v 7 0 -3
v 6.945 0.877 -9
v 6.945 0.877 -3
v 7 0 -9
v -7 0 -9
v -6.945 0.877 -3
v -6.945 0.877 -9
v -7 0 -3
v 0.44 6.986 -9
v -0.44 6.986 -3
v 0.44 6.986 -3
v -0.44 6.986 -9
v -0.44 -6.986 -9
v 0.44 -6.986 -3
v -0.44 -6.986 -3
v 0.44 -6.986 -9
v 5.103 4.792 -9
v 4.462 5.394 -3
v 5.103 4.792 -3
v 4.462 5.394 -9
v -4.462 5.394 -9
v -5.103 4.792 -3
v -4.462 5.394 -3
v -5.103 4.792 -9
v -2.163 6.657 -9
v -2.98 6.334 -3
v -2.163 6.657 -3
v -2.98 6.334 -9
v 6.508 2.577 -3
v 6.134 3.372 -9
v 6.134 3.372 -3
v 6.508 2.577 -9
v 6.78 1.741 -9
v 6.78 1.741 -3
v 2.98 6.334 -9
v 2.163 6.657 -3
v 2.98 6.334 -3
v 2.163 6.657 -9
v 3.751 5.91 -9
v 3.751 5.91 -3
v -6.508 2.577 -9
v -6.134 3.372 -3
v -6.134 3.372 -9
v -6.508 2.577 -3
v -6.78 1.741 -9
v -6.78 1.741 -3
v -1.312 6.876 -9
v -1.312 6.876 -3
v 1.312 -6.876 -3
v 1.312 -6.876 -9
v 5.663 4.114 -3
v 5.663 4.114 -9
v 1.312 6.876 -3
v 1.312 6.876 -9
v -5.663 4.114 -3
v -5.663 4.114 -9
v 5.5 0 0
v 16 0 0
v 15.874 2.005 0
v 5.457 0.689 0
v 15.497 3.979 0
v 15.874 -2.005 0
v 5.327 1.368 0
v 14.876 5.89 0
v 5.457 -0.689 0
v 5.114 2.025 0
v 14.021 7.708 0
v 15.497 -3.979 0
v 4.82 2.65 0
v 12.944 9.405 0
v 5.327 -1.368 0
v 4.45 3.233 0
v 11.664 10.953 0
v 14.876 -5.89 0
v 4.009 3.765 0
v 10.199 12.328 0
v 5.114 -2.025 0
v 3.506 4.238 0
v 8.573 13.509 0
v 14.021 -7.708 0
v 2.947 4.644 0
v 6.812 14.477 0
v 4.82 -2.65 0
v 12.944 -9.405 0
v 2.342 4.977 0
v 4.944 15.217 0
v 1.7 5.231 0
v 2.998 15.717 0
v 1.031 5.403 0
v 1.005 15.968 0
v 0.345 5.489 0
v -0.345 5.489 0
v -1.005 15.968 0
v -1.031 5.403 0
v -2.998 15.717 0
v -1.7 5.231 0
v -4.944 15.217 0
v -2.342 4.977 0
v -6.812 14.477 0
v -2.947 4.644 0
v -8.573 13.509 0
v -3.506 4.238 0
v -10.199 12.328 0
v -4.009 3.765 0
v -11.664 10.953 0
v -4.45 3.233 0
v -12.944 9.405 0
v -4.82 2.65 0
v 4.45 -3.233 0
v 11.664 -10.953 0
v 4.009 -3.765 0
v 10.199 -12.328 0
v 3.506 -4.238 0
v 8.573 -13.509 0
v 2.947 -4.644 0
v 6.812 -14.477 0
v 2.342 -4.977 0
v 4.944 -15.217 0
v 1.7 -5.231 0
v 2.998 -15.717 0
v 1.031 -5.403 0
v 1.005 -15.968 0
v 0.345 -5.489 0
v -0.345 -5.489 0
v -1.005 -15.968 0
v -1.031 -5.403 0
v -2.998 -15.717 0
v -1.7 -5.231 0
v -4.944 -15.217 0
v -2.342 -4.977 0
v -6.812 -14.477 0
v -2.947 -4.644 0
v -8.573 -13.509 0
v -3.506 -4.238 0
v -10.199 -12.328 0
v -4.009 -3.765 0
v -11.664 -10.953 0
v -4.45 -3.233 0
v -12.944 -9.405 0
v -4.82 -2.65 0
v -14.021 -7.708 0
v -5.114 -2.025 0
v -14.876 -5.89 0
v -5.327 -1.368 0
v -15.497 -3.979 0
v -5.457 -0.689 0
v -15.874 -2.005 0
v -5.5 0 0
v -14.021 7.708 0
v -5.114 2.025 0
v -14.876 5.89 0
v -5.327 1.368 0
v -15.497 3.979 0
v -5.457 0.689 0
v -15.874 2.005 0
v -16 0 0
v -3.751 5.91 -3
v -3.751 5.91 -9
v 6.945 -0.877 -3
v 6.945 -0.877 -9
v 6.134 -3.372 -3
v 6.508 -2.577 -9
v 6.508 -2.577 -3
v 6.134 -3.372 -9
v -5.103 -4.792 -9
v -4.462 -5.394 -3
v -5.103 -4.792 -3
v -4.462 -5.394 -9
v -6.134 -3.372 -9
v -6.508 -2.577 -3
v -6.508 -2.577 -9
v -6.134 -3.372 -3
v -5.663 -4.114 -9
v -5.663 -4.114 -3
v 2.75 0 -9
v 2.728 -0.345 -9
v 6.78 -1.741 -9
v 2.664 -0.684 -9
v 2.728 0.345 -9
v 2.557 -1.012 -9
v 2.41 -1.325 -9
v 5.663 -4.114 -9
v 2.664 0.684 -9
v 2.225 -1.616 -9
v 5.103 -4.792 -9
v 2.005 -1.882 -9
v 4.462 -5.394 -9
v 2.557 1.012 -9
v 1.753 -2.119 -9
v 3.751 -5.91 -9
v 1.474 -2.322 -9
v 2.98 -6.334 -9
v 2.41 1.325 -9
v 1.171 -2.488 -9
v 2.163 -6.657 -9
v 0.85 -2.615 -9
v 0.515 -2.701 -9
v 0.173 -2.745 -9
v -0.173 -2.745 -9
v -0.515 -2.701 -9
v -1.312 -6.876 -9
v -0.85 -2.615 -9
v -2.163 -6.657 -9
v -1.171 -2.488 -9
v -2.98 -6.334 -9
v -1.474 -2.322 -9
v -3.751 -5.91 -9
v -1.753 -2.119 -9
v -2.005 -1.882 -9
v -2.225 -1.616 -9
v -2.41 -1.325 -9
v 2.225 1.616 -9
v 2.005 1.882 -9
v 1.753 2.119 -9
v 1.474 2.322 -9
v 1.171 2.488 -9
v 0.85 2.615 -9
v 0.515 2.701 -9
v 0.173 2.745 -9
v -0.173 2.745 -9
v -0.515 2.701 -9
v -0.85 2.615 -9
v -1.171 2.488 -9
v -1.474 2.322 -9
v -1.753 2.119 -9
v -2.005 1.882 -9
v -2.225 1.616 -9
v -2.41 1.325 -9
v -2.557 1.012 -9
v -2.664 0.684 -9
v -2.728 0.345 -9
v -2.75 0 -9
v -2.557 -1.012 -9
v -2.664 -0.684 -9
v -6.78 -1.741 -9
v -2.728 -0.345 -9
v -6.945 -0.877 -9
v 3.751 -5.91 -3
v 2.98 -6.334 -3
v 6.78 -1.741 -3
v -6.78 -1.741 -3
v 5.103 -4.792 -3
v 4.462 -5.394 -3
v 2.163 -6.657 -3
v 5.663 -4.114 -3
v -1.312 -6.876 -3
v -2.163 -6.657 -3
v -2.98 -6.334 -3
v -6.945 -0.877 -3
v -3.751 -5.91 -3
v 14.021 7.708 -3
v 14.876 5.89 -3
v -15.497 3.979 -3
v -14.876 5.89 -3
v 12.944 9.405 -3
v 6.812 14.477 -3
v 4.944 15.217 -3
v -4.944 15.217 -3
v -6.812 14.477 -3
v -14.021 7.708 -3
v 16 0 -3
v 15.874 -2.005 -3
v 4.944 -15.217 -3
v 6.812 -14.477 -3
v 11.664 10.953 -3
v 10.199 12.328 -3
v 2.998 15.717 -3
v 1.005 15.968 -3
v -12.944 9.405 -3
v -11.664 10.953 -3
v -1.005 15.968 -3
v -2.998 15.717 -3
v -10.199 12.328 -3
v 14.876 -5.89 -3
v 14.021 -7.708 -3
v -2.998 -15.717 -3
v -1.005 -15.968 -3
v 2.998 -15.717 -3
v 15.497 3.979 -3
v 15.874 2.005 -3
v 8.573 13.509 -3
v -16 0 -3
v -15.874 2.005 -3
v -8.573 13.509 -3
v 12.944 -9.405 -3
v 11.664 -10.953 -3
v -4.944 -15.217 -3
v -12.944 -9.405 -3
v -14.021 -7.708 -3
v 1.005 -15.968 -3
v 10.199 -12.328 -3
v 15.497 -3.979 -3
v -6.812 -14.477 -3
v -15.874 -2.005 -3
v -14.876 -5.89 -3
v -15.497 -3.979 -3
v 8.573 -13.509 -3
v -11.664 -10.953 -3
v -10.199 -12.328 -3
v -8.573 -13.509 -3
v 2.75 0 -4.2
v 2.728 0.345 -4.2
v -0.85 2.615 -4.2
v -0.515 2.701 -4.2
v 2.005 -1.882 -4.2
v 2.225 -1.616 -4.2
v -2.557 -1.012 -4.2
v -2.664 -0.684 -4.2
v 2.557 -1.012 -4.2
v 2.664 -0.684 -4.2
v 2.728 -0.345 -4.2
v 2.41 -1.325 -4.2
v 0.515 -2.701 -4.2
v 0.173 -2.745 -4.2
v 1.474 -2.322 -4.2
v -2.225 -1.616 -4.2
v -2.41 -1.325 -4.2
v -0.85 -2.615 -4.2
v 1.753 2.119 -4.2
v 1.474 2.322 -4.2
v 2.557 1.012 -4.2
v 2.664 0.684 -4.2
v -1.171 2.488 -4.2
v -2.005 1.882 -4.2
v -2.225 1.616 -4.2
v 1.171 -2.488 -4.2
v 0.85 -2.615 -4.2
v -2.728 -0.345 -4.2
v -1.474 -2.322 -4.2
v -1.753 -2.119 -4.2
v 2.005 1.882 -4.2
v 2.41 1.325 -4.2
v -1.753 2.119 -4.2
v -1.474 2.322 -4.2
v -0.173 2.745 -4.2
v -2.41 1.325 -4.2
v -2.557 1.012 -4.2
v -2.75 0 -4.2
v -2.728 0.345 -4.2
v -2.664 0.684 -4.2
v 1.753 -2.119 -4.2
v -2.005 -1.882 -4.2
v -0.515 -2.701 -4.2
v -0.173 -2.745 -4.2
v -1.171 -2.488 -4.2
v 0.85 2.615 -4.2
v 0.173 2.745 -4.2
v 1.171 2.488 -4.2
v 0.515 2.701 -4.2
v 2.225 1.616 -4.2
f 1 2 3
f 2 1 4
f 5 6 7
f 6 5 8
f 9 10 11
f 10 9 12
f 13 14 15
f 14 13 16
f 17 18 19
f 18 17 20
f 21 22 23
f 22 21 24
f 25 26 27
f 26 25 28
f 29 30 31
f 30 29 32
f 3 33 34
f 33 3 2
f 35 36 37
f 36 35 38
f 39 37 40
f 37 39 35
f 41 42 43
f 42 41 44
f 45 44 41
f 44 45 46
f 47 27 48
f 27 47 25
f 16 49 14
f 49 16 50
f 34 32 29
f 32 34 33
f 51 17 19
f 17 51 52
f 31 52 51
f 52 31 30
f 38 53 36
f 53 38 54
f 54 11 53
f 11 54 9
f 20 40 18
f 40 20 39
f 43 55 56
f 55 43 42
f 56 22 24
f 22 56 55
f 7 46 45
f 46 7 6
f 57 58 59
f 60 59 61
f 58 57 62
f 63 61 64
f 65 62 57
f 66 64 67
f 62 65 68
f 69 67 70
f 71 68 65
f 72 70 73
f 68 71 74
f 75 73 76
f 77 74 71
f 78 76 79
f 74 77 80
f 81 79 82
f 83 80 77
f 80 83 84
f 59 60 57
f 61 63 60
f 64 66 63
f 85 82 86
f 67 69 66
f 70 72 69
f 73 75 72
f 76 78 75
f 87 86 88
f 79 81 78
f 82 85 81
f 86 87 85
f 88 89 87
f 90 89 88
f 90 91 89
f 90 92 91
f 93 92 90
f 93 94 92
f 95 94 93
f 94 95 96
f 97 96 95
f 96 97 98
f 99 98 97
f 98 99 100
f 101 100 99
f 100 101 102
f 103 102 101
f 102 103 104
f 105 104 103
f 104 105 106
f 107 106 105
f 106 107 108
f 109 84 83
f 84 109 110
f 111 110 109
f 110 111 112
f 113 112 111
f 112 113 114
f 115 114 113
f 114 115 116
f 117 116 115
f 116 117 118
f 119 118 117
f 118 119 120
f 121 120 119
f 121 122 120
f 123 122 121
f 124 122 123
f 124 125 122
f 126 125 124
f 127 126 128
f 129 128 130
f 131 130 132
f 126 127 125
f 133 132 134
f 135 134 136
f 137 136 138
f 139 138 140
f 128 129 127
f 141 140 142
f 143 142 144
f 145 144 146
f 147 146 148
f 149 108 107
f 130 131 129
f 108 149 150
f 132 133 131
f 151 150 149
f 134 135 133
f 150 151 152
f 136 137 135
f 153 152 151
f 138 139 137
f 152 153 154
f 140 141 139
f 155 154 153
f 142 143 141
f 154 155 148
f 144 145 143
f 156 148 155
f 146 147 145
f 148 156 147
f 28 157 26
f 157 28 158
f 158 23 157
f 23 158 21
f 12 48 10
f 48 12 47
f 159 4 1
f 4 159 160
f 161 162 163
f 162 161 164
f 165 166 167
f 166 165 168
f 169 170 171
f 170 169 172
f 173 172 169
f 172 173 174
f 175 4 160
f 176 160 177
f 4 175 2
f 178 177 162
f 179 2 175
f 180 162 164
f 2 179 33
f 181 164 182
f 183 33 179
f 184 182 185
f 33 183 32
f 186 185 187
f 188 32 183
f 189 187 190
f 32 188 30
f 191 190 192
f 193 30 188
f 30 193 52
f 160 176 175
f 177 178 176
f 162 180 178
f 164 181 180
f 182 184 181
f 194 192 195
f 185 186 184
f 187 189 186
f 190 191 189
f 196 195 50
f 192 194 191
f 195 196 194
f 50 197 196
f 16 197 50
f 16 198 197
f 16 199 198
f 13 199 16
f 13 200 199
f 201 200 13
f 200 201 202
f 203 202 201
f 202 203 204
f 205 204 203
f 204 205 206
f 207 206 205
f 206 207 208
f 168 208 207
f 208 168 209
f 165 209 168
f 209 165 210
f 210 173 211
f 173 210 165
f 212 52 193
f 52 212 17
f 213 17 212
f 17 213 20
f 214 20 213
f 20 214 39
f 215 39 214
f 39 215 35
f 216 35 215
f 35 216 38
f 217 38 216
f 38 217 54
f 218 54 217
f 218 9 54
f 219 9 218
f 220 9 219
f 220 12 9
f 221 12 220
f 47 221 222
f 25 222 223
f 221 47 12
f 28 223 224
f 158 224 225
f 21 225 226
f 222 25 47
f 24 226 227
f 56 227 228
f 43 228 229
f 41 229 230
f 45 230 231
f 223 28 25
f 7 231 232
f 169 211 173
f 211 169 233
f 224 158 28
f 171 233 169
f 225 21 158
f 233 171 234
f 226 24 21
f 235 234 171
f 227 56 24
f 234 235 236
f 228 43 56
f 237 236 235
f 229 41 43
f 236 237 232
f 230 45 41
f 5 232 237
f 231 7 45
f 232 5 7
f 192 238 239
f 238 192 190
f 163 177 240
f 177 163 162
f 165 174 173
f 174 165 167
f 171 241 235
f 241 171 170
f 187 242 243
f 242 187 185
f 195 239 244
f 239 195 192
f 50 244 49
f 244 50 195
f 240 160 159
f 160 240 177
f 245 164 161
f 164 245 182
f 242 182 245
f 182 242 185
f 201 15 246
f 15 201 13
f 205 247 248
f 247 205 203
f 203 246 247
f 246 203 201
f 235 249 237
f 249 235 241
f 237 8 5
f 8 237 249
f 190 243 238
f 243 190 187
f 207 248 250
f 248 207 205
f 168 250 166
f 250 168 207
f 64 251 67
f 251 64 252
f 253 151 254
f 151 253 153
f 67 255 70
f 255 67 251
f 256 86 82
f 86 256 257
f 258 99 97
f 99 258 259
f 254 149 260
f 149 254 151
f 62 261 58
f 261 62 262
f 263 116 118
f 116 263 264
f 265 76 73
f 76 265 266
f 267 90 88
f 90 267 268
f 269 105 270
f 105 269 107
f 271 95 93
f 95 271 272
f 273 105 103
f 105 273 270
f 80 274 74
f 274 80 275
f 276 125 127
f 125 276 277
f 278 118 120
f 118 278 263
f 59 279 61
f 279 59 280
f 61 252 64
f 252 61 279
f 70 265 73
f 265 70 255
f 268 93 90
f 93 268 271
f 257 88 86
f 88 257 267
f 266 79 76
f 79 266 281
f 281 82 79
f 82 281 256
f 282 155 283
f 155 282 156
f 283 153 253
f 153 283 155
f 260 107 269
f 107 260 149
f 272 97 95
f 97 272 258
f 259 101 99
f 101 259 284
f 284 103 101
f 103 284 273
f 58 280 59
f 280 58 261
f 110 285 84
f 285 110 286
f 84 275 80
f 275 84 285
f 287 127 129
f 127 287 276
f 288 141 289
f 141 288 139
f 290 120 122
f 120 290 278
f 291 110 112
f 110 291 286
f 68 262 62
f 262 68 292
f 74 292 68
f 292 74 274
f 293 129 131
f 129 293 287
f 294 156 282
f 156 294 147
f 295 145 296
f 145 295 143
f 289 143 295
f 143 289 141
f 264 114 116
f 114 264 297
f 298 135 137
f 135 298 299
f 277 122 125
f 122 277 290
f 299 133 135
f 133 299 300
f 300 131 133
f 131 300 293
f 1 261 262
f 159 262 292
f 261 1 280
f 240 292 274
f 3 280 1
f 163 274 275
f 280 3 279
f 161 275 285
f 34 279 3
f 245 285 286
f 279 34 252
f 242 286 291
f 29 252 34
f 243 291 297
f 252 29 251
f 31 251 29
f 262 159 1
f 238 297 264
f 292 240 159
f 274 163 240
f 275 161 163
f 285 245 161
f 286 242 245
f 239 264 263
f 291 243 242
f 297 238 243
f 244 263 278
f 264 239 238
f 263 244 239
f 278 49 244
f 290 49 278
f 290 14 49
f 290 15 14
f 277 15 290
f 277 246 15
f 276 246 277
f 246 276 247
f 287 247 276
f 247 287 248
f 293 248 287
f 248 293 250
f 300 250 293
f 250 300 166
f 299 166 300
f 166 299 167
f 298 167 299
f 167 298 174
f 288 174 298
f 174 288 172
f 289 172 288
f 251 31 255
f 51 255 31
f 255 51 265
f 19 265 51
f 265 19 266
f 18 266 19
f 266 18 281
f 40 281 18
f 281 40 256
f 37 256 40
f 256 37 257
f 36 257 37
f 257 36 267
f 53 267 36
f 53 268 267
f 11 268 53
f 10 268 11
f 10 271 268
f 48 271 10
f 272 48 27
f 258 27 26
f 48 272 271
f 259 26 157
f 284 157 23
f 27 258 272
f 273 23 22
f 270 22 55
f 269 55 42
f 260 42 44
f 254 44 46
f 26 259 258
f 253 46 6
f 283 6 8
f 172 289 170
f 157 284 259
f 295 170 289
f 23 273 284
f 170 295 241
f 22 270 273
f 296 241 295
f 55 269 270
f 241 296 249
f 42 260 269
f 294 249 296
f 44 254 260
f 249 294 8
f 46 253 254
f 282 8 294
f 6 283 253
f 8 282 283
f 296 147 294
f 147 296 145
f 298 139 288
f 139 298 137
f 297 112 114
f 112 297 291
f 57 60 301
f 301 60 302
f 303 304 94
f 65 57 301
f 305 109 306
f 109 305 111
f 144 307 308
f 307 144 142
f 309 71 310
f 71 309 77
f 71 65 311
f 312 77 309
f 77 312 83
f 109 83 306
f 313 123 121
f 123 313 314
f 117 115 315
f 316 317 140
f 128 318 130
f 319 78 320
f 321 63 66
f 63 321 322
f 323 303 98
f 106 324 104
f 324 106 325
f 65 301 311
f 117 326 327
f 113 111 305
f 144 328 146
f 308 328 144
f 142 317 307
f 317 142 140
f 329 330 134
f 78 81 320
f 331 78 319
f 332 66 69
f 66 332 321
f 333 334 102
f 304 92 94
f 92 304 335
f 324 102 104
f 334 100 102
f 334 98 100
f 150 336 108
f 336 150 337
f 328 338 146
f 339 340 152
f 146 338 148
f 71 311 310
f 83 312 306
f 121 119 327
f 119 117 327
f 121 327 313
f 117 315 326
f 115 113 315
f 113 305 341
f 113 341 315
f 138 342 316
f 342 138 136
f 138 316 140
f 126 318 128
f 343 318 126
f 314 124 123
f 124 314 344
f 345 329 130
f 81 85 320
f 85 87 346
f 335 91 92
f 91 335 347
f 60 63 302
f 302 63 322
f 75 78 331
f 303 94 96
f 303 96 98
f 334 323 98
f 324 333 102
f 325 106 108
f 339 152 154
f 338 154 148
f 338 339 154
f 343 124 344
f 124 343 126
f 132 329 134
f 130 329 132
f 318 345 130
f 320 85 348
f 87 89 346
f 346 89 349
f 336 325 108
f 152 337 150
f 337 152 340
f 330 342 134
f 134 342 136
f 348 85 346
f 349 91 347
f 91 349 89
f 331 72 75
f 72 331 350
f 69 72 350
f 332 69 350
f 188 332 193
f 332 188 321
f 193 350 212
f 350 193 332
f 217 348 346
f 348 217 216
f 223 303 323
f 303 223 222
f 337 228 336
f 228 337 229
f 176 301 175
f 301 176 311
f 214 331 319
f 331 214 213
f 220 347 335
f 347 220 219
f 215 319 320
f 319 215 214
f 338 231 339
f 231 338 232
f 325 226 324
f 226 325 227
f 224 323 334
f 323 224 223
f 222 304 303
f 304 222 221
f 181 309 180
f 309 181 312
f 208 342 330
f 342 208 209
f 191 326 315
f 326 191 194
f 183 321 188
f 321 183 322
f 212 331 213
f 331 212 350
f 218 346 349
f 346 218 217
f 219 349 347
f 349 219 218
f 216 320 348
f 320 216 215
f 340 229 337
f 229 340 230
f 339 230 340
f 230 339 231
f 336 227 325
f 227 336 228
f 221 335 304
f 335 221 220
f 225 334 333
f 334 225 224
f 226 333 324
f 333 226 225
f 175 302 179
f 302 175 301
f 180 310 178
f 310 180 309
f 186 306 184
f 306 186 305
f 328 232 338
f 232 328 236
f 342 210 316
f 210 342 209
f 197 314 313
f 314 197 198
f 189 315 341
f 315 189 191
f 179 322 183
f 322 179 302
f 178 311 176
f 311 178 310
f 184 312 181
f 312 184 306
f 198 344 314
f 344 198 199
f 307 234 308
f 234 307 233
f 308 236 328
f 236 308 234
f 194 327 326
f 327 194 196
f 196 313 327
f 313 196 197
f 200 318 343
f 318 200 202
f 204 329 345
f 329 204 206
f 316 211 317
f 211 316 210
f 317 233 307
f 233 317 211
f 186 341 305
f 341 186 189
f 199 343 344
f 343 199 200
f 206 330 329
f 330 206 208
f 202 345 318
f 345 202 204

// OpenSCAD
$fn = 50;


difference() {
	union() {
		translate(v = [0, 0, -9.0000000000]) {
			cylinder(h = 9, r = 7.0000000000);
		}
		translate(v = [0, 0, -3.0000000000]) {
			cylinder(h = 3, r = 16.0000000000);
		}
	}
	union() {
		translate(v = [0, 0, 0]) {
			rotate(a = [0, 0, 0]) {
				difference() {
					union() {
						#translate(v = [0, 0, -9.0000000000]) {
							cylinder(h = 9, r = 2.2500000000);
						}
						#translate(v = [0, 0, -4.2000000000]) {
							cylinder(h = 4.2000000000, r1 = 2.7500000000, r2 = 5.5000000000);
						}
						#translate(v = [0, 0, -9.0000000000]) {
							cylinder(h = 9, r = 2.7500000000);
						}
						#translate(v = [0, 0, -9.0000000000]) {
							cylinder(h = 9, r = 2.2500000000);
						}
					}
					union();
				}
			}
		}
	}
}
